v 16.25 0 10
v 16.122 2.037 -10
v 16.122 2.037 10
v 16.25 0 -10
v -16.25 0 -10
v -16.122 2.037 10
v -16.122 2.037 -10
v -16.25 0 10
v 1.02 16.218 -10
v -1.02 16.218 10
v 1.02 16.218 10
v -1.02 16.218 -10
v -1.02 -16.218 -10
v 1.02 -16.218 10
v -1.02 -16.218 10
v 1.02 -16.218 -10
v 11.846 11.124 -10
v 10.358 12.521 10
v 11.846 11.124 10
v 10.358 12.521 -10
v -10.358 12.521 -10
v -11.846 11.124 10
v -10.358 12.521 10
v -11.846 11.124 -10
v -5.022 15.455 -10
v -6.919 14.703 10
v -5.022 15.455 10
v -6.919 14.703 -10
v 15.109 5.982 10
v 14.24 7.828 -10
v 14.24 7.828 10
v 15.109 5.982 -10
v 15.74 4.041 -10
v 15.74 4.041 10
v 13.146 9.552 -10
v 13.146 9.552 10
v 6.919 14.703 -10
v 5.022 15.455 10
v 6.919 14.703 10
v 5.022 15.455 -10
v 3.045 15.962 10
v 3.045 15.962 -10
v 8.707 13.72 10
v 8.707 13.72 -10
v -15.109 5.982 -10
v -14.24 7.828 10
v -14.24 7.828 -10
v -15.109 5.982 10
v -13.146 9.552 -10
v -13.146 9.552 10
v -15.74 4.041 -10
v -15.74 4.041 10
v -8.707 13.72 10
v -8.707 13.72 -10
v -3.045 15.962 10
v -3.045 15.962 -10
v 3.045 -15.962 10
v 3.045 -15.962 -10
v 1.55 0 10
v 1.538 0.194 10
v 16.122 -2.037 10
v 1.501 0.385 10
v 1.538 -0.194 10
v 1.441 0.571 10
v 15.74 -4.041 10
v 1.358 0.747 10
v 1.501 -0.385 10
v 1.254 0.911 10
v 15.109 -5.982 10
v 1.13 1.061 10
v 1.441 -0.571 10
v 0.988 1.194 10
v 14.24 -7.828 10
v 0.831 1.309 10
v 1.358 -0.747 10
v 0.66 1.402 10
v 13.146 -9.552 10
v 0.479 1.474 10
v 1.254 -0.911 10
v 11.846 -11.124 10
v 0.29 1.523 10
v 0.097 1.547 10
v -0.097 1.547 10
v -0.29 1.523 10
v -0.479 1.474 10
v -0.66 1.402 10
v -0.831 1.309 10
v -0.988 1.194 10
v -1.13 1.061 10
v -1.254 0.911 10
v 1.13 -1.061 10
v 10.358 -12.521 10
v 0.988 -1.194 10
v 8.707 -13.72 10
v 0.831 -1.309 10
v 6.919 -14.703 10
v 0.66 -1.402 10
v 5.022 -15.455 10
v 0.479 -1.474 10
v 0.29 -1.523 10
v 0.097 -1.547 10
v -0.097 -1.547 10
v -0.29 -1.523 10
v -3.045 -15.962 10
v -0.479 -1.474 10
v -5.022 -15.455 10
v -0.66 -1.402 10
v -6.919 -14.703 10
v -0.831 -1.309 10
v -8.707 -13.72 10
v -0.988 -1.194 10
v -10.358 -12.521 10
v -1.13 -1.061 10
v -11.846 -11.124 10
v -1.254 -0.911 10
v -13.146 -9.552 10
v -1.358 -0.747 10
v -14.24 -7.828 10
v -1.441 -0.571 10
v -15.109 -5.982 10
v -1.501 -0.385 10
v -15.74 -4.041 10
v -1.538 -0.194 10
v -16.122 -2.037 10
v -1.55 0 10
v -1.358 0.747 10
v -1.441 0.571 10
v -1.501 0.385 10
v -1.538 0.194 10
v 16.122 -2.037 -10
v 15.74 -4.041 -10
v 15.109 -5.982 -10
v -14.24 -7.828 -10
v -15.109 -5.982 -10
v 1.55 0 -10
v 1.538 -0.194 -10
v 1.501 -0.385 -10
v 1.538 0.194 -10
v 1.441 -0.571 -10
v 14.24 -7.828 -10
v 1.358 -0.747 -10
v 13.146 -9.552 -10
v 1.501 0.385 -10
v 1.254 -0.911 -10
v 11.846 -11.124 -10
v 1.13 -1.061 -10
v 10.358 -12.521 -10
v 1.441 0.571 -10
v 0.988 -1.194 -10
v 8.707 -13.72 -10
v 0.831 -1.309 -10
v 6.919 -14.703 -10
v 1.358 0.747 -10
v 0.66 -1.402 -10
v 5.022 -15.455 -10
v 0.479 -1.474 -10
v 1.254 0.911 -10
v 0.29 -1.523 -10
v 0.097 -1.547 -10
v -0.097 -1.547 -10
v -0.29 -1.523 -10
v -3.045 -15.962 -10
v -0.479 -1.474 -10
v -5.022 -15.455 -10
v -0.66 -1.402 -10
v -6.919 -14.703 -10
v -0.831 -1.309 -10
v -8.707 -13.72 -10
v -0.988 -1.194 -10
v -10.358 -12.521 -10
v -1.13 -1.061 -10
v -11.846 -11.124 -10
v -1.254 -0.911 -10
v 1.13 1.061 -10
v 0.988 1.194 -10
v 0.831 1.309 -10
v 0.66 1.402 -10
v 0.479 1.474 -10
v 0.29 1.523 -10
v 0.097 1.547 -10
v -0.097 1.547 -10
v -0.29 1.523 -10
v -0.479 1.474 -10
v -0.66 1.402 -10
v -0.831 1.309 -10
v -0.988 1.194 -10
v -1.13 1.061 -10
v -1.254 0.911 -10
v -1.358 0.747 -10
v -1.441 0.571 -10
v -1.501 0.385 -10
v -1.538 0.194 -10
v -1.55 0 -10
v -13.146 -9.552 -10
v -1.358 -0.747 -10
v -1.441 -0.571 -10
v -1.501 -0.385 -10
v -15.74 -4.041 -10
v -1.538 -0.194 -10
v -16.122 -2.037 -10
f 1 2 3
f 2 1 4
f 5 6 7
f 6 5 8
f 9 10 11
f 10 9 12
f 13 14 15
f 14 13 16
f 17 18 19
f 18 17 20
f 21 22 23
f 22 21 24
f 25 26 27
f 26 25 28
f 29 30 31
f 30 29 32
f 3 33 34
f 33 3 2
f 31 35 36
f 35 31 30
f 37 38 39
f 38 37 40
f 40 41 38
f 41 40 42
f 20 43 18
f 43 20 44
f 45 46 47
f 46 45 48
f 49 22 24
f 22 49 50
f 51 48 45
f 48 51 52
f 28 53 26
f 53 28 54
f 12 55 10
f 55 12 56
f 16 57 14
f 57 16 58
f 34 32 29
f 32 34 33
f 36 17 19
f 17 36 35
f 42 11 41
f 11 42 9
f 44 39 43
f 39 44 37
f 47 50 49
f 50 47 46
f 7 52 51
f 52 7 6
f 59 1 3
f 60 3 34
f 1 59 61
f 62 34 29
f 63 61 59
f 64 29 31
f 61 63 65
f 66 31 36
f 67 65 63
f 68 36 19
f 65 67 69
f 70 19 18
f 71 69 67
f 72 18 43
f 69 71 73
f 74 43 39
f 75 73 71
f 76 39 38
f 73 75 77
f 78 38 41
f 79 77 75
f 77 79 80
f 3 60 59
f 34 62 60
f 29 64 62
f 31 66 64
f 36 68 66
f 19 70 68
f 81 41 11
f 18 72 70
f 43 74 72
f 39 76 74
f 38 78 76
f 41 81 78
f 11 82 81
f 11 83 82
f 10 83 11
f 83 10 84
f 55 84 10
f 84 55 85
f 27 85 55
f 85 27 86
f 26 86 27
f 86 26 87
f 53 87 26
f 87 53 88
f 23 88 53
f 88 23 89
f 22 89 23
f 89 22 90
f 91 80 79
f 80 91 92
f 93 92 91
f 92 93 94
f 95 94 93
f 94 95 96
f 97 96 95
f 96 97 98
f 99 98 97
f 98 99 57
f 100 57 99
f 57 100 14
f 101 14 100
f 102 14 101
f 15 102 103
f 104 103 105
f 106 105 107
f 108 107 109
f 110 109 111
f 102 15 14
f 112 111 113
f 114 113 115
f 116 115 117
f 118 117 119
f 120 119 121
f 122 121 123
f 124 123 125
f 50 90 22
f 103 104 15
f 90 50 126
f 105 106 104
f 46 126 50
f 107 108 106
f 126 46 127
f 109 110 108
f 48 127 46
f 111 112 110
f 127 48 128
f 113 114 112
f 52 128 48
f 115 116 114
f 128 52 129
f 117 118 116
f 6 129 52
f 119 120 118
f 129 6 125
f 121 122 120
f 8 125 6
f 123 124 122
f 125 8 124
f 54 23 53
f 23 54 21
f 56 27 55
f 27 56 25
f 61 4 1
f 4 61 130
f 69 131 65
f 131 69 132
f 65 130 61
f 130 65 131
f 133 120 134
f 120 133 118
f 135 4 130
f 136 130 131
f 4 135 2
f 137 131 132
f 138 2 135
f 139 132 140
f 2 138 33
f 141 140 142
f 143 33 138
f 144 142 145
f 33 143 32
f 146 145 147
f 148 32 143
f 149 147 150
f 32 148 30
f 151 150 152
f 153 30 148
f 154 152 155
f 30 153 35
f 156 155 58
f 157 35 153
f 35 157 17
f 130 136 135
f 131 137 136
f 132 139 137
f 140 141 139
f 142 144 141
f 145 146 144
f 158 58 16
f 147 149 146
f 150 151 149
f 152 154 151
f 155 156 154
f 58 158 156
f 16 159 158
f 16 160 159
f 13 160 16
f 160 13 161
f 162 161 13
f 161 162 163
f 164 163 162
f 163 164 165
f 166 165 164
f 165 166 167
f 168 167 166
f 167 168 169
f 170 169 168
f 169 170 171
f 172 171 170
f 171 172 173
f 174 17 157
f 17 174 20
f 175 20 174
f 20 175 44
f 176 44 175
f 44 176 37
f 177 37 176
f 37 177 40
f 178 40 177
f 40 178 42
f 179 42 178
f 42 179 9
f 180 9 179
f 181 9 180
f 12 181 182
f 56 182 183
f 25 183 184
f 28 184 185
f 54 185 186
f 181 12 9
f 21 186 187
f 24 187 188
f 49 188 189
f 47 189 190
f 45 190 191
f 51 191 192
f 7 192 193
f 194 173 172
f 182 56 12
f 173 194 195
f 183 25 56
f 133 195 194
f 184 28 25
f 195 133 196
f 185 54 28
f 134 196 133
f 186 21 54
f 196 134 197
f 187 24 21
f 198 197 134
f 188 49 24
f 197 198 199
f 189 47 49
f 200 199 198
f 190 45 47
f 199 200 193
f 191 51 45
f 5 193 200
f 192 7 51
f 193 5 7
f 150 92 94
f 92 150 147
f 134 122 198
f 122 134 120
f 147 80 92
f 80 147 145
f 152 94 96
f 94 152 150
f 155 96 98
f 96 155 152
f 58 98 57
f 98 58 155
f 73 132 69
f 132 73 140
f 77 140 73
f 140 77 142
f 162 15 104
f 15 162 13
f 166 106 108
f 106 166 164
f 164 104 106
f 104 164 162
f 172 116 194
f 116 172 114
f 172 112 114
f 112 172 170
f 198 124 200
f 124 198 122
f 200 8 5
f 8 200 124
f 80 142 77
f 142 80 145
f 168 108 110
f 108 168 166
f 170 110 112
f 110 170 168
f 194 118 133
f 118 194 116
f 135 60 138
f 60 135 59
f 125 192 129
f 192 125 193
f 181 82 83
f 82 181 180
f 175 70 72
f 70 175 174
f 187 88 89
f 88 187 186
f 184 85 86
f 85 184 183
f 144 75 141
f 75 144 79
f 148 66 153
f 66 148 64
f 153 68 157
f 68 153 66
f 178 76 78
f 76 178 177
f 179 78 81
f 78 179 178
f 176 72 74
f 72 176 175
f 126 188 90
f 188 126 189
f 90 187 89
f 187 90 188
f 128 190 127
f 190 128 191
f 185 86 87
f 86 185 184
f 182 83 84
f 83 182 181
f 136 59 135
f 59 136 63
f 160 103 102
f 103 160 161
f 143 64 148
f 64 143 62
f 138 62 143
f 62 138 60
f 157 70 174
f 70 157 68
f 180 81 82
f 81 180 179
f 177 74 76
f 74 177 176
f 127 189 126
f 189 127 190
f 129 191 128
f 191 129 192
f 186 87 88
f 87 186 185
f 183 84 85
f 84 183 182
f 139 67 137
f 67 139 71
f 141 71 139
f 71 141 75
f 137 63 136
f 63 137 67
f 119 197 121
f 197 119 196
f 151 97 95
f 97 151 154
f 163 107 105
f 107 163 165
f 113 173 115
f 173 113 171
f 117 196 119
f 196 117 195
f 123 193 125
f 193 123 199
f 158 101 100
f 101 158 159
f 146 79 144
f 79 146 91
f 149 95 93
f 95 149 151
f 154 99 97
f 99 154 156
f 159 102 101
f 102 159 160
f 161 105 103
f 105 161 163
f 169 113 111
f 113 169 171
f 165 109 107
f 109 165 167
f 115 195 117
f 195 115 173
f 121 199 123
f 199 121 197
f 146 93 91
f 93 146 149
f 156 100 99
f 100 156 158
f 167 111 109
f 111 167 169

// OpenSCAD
$fn = 50;


difference() {
	union() {
		translate(v = [0, 0, -10.0000000000]) {
			cylinder(h = 20, r = 16.2500000000);
		}
	}
	union() {
		translate(v = [0, 0, -100.0000000000]) {
			cylinder(h = 200, r = 1.5500000000);
		}
	}
}
